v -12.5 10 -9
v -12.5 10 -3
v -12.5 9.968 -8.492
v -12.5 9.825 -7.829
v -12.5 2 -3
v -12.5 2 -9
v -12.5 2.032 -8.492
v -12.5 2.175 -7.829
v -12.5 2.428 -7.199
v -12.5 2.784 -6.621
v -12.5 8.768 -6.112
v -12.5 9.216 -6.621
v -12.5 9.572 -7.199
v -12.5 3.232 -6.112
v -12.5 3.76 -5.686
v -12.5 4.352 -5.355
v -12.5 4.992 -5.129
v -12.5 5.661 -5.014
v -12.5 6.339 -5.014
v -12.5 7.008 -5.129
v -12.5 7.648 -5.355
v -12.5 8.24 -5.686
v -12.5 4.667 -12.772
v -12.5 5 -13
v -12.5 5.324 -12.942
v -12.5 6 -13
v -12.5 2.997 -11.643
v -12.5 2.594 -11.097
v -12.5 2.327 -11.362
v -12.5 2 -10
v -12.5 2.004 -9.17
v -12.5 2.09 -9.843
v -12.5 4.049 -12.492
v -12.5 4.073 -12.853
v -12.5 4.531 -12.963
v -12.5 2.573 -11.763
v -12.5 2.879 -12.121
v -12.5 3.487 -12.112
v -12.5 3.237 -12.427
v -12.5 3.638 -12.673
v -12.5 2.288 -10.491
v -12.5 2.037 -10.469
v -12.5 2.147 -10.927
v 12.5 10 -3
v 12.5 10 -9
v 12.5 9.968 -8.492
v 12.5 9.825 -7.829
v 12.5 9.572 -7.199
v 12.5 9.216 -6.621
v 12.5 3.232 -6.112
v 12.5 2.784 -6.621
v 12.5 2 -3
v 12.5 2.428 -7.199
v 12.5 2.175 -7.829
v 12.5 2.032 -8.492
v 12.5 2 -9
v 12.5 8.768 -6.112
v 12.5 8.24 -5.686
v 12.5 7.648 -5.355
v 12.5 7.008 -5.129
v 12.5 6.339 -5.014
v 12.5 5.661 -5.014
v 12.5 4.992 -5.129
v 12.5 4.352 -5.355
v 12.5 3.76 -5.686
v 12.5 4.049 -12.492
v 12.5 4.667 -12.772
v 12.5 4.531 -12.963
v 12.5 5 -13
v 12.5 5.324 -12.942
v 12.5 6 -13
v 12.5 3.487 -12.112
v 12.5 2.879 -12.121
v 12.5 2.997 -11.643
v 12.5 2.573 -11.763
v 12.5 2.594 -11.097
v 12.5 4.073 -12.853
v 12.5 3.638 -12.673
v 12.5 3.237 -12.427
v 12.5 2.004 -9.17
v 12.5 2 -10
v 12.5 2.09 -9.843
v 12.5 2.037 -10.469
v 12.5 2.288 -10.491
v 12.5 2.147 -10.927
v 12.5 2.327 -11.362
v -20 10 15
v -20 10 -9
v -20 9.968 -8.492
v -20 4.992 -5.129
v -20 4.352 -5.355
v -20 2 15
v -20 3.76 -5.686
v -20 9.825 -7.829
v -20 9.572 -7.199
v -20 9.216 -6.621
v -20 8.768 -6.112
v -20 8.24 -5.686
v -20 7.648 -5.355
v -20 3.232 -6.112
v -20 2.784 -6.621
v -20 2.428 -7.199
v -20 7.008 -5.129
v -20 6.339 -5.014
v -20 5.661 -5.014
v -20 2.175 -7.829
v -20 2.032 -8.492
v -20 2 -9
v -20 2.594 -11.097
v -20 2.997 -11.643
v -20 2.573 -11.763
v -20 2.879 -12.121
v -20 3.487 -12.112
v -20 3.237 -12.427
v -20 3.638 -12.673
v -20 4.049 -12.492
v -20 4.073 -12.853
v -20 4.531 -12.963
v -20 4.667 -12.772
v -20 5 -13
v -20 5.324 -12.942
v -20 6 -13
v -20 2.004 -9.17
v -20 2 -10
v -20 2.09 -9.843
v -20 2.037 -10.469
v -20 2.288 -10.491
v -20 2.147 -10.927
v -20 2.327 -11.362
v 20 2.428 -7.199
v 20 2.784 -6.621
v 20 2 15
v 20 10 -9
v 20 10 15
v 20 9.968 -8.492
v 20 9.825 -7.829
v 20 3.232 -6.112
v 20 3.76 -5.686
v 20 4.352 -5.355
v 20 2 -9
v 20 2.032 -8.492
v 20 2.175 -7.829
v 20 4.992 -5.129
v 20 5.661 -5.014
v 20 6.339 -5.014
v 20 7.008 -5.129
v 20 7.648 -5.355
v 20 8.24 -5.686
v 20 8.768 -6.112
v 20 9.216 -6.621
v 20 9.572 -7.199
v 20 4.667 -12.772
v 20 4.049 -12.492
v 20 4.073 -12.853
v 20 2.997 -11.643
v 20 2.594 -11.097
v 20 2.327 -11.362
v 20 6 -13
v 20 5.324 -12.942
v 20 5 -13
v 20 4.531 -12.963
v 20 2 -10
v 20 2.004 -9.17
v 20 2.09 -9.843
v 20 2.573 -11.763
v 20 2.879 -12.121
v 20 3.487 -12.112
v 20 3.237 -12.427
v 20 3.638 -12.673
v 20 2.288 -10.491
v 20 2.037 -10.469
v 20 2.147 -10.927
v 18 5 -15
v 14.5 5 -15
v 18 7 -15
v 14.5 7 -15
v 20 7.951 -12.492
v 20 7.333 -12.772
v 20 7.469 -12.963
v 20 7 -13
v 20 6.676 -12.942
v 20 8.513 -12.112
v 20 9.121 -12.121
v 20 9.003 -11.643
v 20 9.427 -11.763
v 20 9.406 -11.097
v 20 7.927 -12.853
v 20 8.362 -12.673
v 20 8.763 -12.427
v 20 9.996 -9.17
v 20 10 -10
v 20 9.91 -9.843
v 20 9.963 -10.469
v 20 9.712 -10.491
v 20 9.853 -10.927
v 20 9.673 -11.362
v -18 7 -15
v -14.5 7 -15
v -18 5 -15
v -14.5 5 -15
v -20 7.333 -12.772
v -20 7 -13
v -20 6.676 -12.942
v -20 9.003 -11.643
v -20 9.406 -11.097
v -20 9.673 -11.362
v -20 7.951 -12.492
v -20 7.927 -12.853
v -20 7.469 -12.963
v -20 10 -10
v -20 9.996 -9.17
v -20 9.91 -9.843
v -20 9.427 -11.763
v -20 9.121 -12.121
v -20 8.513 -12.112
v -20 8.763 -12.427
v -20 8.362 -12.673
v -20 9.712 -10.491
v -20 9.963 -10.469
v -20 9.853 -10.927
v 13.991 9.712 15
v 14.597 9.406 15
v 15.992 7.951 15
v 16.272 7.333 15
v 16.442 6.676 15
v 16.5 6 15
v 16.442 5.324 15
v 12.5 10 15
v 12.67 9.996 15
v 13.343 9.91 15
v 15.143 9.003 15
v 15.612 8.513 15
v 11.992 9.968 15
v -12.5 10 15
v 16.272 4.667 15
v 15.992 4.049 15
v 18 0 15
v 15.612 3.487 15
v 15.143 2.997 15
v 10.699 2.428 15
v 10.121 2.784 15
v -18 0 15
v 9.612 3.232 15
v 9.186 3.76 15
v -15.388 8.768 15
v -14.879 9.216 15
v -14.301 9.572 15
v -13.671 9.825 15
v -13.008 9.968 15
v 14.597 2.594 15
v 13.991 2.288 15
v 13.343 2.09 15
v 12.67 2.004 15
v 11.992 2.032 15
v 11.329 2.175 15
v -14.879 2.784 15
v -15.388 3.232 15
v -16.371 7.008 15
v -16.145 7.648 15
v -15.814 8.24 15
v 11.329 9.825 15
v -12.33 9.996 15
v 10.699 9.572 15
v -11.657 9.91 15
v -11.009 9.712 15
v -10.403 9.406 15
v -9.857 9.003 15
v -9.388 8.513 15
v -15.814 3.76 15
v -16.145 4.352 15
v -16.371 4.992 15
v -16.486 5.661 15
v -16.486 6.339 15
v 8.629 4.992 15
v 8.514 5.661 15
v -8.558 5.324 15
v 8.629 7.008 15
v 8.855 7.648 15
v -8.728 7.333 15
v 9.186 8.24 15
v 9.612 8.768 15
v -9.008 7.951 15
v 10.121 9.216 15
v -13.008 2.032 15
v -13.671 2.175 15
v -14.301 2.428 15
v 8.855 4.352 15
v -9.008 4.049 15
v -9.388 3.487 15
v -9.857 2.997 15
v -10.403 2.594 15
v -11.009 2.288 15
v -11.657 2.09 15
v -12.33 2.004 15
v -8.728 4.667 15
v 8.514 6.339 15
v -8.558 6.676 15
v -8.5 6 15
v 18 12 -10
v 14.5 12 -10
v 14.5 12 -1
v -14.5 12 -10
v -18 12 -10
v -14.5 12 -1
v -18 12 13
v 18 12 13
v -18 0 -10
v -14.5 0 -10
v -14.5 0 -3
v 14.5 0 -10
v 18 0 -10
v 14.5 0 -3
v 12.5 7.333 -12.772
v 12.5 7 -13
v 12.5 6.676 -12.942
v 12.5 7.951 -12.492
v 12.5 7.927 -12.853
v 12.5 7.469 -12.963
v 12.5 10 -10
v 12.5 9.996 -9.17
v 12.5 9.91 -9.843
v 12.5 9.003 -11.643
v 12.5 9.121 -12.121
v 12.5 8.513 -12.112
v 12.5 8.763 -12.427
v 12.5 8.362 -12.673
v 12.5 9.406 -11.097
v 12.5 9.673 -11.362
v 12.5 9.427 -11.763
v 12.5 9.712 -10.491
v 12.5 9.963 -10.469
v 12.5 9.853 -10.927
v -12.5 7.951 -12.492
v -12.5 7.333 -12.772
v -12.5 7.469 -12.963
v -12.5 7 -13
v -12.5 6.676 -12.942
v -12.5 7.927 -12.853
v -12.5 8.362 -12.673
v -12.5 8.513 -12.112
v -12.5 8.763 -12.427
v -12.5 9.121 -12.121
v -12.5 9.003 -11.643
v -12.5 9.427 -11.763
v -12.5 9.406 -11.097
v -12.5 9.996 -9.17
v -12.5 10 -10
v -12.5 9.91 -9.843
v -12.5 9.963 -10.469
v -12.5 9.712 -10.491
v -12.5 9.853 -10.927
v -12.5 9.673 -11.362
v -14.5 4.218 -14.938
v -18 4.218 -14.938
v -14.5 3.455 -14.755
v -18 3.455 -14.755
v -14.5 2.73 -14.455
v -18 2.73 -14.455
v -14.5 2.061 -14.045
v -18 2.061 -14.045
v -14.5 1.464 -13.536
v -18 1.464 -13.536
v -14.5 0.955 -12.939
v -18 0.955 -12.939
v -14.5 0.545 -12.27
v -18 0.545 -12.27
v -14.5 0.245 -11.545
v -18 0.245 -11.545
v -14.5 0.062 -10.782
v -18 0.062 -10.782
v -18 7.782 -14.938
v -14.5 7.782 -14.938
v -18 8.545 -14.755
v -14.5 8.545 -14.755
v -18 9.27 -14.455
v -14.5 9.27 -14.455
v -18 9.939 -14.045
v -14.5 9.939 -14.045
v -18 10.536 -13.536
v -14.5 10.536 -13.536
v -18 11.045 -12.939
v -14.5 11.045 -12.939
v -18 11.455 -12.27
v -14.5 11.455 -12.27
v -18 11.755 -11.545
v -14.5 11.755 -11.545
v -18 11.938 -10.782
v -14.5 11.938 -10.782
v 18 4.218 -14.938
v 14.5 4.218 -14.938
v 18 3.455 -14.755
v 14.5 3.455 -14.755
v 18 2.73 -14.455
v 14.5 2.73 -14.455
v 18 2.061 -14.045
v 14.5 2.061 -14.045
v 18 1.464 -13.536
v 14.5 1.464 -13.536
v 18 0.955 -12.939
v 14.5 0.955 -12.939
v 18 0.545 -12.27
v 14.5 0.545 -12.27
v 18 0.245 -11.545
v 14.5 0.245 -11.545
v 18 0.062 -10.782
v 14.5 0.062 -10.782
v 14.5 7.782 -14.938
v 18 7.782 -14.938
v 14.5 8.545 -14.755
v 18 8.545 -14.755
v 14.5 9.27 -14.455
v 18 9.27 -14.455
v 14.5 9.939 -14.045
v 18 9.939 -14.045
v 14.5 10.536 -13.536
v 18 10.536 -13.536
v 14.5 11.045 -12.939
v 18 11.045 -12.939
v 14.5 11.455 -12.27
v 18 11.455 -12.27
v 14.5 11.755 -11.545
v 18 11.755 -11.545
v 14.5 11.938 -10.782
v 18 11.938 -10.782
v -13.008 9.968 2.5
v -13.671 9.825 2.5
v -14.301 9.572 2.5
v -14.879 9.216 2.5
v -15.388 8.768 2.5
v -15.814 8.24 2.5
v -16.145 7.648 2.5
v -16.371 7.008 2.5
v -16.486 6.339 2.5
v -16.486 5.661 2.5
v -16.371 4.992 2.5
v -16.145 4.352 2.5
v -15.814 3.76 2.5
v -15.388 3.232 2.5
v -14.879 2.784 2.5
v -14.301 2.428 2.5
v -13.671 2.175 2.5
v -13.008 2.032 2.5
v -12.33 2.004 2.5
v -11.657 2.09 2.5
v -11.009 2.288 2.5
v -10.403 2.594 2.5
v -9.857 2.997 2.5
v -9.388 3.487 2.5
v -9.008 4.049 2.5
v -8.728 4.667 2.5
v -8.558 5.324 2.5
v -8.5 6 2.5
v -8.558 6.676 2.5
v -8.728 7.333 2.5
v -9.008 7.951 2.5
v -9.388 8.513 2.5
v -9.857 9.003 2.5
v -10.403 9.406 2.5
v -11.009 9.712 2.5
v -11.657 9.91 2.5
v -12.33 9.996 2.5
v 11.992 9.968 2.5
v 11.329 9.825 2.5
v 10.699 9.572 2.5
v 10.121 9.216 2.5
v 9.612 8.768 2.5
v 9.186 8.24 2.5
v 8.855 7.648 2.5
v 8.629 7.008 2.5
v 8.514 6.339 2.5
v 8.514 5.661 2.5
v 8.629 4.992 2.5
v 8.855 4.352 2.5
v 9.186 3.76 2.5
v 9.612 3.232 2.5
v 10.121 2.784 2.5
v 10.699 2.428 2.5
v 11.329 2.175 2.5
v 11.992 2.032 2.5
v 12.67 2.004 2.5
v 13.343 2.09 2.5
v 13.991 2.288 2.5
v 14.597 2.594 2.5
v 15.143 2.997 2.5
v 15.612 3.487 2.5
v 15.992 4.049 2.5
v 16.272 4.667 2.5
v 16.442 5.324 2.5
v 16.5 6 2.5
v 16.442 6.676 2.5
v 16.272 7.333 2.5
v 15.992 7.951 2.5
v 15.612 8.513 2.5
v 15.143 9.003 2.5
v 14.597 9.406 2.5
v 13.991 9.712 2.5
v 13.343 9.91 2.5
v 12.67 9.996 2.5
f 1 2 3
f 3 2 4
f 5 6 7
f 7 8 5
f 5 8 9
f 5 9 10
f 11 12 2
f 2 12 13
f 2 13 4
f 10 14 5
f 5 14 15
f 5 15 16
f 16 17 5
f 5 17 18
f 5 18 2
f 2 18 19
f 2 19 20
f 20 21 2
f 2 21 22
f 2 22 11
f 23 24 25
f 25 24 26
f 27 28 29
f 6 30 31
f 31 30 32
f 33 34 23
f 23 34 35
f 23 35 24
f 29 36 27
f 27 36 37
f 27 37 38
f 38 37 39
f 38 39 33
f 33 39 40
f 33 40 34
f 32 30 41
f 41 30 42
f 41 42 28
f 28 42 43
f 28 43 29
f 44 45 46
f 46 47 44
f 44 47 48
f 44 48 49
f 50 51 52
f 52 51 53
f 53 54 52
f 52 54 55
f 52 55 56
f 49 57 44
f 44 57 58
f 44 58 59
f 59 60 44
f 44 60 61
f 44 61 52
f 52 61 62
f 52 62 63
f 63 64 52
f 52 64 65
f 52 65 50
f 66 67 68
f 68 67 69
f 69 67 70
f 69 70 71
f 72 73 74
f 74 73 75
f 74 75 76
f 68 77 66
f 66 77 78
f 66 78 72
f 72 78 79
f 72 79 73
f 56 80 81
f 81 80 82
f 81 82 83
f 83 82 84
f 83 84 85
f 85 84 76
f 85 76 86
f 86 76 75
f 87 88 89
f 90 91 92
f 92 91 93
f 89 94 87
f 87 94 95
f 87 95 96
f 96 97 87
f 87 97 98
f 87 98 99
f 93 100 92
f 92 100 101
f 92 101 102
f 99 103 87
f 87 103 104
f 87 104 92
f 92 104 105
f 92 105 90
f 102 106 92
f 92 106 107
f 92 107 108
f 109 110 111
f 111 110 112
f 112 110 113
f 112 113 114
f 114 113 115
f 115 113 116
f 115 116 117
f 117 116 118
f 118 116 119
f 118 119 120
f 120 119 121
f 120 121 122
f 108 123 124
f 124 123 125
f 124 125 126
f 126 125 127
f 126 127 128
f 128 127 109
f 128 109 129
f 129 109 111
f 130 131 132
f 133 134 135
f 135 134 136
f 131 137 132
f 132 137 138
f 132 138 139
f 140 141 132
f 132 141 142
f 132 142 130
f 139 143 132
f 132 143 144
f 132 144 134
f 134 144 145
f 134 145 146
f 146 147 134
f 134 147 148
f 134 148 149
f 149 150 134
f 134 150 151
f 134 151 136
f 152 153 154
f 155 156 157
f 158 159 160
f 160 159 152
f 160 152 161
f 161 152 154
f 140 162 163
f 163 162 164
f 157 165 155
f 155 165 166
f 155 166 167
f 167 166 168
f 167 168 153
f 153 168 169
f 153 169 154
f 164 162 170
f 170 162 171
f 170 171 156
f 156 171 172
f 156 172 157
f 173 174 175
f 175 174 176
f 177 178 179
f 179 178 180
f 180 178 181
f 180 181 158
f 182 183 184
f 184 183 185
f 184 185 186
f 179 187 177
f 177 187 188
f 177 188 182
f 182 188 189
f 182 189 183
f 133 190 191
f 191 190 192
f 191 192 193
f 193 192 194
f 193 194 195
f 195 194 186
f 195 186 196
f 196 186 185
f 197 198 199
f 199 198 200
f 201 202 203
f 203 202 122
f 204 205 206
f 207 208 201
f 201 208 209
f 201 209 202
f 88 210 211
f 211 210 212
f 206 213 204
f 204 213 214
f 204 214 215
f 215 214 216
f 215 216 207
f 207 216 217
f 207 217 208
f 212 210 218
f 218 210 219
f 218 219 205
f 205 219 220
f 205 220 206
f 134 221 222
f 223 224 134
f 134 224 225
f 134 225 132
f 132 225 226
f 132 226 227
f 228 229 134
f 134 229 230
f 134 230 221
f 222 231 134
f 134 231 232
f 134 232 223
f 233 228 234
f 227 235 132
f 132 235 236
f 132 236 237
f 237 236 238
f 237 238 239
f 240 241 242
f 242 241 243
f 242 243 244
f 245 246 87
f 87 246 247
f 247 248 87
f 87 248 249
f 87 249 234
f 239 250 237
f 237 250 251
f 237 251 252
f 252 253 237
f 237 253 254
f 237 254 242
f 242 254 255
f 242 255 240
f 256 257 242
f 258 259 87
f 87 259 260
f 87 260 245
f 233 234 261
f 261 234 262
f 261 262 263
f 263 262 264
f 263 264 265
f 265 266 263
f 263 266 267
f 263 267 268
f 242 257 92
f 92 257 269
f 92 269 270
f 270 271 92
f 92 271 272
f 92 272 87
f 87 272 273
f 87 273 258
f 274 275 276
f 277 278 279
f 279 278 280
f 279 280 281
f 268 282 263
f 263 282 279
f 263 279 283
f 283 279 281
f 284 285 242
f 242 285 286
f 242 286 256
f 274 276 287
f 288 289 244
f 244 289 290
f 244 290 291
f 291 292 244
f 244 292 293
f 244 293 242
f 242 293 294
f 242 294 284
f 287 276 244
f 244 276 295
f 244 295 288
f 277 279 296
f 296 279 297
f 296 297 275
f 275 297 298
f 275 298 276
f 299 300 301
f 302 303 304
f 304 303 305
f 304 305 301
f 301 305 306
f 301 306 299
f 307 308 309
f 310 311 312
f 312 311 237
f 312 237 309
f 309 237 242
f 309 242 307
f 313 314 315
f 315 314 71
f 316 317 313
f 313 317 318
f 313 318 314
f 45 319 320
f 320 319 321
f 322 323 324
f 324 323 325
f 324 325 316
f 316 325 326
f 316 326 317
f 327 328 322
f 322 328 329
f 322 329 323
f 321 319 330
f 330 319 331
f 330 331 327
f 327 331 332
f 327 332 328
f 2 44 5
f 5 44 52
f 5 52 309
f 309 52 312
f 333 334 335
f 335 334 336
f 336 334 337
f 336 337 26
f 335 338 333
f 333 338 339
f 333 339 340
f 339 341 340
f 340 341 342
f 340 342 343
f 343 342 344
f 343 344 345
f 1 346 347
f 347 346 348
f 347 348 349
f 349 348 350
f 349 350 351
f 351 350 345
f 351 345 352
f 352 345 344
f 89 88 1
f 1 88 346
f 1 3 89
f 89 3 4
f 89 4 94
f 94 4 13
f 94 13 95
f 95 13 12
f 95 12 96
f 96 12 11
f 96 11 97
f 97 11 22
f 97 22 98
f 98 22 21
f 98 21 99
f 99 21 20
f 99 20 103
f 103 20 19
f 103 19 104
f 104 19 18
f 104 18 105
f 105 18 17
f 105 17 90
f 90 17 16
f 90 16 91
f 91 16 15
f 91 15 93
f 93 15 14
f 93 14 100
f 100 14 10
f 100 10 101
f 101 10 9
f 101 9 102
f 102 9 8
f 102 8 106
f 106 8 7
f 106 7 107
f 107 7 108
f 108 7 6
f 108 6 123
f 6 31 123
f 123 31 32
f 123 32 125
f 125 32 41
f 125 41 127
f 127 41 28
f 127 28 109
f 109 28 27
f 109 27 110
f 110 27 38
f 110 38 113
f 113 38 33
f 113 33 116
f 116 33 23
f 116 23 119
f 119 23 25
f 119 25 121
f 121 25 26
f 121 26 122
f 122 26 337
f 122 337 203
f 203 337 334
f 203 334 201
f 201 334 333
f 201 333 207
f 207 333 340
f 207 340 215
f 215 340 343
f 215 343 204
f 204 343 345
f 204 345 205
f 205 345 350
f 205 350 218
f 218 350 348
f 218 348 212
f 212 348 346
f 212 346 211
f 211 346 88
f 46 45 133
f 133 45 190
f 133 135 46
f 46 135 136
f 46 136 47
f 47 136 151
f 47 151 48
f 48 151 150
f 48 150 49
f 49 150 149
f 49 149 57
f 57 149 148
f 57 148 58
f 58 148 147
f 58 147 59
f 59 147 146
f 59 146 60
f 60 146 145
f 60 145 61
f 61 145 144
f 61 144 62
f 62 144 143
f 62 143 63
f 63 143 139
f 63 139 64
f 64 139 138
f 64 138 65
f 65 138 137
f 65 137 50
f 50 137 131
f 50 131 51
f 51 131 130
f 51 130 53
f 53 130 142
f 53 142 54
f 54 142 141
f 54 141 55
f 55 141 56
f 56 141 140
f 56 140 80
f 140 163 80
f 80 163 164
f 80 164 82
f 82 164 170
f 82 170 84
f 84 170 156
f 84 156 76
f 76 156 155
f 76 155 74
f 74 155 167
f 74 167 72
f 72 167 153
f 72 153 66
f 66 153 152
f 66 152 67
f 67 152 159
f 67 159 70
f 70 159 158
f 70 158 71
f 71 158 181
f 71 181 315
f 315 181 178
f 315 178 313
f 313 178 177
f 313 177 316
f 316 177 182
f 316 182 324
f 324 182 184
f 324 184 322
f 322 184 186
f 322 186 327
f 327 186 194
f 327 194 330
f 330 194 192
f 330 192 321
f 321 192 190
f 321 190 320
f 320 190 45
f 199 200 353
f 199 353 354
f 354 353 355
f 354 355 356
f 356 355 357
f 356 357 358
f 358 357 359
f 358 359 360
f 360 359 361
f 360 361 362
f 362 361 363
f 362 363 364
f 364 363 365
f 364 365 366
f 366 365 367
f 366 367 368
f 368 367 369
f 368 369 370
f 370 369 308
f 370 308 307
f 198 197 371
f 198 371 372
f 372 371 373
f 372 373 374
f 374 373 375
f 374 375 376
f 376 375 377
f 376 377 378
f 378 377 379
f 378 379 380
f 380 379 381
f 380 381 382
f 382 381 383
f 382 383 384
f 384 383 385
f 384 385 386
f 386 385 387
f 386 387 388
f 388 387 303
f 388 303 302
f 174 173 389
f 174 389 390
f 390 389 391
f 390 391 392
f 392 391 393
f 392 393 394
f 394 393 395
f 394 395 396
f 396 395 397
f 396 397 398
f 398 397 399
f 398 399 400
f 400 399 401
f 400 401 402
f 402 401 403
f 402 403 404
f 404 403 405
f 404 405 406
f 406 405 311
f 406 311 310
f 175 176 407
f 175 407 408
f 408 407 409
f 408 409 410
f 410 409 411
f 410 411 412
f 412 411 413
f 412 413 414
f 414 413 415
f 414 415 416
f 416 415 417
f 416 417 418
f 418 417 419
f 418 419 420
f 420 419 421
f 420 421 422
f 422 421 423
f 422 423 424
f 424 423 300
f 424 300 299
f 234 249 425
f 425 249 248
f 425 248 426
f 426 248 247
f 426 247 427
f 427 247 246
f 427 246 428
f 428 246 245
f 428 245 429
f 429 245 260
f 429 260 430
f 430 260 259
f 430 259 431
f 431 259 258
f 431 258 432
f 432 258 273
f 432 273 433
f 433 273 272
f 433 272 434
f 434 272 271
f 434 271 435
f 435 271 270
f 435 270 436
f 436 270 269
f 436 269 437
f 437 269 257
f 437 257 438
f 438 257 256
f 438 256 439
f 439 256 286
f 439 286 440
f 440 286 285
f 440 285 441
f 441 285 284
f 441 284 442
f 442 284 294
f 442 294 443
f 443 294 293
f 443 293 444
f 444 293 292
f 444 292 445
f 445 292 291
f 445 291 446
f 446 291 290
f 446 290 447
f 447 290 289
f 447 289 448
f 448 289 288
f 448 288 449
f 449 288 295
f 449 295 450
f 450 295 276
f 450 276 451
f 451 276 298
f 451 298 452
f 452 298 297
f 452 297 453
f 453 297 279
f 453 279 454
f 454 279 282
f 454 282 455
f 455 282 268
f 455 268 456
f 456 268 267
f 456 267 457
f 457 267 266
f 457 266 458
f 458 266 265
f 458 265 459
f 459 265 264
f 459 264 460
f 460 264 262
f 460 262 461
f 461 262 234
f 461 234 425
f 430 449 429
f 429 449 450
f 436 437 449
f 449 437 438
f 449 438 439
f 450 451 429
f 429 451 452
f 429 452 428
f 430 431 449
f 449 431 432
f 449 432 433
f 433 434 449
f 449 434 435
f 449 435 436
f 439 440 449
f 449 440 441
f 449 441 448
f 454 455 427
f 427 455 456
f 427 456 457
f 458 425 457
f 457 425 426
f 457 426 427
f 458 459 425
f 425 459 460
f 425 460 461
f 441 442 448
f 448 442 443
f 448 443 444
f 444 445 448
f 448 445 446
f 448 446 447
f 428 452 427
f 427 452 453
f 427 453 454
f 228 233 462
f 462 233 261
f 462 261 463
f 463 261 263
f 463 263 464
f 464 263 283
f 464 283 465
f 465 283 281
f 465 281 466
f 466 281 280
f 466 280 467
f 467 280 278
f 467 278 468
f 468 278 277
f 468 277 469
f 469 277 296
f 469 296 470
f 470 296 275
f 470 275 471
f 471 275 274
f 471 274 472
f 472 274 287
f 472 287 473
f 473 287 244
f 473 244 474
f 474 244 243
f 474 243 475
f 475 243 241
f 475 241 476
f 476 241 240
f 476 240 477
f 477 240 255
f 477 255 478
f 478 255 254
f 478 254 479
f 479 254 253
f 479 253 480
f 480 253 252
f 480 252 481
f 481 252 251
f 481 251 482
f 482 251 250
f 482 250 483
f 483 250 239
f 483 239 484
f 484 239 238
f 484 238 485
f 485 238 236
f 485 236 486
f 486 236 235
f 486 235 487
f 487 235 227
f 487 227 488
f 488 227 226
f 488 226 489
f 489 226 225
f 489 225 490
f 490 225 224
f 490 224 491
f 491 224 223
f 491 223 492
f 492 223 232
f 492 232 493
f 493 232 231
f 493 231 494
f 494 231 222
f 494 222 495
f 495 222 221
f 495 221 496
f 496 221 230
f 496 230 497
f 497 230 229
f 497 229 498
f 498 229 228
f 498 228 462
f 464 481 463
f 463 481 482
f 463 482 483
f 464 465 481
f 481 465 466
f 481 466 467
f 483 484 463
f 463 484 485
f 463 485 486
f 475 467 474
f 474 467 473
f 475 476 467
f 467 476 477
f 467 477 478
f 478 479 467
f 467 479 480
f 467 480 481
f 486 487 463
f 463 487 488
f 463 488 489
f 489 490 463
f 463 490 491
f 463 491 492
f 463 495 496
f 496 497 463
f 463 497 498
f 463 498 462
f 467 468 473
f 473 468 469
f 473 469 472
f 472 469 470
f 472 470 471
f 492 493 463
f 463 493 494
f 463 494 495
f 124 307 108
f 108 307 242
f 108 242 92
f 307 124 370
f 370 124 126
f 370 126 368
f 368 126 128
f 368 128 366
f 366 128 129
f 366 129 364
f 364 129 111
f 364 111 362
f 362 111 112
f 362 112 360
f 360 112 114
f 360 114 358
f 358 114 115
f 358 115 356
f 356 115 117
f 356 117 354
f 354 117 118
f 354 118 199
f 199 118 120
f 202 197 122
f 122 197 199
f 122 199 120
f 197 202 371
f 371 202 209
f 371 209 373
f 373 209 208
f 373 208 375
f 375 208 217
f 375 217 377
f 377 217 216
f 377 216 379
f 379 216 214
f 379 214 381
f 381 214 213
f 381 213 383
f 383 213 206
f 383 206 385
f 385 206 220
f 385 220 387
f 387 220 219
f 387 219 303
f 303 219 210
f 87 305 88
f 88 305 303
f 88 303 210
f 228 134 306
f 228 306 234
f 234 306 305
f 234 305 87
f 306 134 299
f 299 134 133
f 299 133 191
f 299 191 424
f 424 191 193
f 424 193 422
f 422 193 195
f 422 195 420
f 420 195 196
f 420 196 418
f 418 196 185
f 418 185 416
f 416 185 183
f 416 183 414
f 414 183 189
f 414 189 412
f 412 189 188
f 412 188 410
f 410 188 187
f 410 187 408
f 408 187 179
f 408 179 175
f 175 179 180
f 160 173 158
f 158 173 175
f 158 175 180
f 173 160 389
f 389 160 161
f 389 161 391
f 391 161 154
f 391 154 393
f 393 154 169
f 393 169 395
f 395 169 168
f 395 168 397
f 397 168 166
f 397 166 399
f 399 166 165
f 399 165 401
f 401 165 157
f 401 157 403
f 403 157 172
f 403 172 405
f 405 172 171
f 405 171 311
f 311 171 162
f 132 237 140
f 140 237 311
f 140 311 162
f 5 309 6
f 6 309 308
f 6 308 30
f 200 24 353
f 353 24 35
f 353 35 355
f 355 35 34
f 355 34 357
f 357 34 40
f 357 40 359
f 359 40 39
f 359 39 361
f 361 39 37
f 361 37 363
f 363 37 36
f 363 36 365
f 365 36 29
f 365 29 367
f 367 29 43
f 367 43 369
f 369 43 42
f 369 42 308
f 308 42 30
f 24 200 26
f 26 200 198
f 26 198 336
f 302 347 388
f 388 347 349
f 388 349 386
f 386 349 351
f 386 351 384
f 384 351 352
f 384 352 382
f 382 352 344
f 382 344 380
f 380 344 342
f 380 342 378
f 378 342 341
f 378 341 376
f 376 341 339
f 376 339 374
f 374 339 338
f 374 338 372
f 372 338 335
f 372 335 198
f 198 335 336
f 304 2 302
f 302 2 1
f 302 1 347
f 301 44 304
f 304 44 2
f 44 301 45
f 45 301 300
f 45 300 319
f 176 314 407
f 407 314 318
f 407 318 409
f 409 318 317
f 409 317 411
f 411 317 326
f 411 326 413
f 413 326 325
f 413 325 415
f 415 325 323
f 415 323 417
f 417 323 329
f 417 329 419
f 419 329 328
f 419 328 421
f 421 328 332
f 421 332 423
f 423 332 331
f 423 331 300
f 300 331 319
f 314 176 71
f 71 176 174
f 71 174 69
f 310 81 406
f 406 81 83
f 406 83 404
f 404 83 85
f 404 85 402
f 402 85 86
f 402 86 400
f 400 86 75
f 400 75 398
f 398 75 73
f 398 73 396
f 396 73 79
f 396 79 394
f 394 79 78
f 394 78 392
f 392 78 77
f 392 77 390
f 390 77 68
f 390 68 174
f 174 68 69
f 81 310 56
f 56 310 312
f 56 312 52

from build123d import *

# Parameters (mm, degrees)
SKETCH1_W           = 40
SKETCH1_H           = 30
BOSS_EXTRUDE1_DEPTH = 12
SKETCH2_W           = 25
SKETCH2_H           = 12
CUT_EXTRUDE1_DEPTH  = 12
SKETCH3_R           = 4
CUT_EXTRUDE2_DEPTH  = 100
FILLET1_R           = 5
SKETCH4_R           = 4
CUT_EXTRUDE3_DEPTH  = 12.5
CHAMFER1_SIZE       = 2


with BuildPart() as part:
    # Sketch1 → Boss-Extrude1 (new body)
    with BuildSketch(Plane(origin=(0, 0, 0), x_dir=(1, 0, 0), z_dir=(0, 1, 0))):
        Rectangle(SKETCH1_W, SKETCH1_H)
    extrude(amount=BOSS_EXTRUDE1_DEPTH)

    # Sketch2 → Cut-Extrude1 (cut)
    with BuildSketch(Plane(origin=(0, 12, 0), x_dir=(1, 0, 0), z_dir=(0, 1, 0))):
        with Locations((0, 9)):
            Rectangle(SKETCH2_W, SKETCH2_H)
    extrude(amount=-CUT_EXTRUDE1_DEPTH, mode=Mode.SUBTRACT)

    # Sketch3 → Cut-Extrude2 (cut)
    with BuildSketch(Plane(origin=(20, 0, 0), x_dir=(0, 0, -1), z_dir=(1, 0, 0))):
        with Locations((9, 6)):
            Circle(SKETCH3_R)
    extrude(amount=-CUT_EXTRUDE2_DEPTH, mode=Mode.SUBTRACT)

    # Fillet1
    fillet1_edges = [part.edges().sort_by_distance(p)[0] for p in [
        (-16.25, 0, -15),
        (-16.25, 12, -15),
        (16.25, 0, -15),
        (16.25, 12, -15),
    ]]
    fillet(fillet1_edges, radius=FILLET1_R)

    # Sketch4 → Cut-Extrude3 (cut)
    with BuildSketch(Plane.XY.offset(15)):
        with Locations((-12.5, 6)):
            Circle(SKETCH4_R)
        with Locations((12.5, 6)):
            Circle(SKETCH4_R)
    extrude(amount=-CUT_EXTRUDE3_DEPTH, mode=Mode.SUBTRACT)

    # Chamfer1
    chamfer1_edges = [part.edges().sort_by_distance(p)[0] for p in [
        (0, 12, 15),
        (12.5, 0, -6.5),
        (12.5, 12, -6.5),
        (0, 12, -3),
        (-12.5, 6, -15),
        (-20, 6, -15),
        (20, 12, 2.5),
        (-20, 0, 2.5),
        (-20, 12, 2.5),
        (-20, 10.535533906, -13.535533906),
        (-20, 1.464466094, -13.535533906),
        (-12.5, 0, -6.5),
        (-12.5, 12, -6.5),
        (-12.5, 10.535533906, -13.535533906),
        (-12.5, 1.464466094, -13.535533906),
        (12.5, 6, -15),
        (20, 6, -15),
        (12.5, 10.535533906, -13.535533906),
        (12.5, 1.464466094, -13.535533906),
        (20, 10.535533906, -13.535533906),
        (20, 1.464466094, -13.535533906),
        (20, 0, 2.5),
    ]]
    chamfer(chamfer1_edges, length=CHAMFER1_SIZE - 0.0001)  # a hair under: the kernel refuses the full size


solid = part.part
